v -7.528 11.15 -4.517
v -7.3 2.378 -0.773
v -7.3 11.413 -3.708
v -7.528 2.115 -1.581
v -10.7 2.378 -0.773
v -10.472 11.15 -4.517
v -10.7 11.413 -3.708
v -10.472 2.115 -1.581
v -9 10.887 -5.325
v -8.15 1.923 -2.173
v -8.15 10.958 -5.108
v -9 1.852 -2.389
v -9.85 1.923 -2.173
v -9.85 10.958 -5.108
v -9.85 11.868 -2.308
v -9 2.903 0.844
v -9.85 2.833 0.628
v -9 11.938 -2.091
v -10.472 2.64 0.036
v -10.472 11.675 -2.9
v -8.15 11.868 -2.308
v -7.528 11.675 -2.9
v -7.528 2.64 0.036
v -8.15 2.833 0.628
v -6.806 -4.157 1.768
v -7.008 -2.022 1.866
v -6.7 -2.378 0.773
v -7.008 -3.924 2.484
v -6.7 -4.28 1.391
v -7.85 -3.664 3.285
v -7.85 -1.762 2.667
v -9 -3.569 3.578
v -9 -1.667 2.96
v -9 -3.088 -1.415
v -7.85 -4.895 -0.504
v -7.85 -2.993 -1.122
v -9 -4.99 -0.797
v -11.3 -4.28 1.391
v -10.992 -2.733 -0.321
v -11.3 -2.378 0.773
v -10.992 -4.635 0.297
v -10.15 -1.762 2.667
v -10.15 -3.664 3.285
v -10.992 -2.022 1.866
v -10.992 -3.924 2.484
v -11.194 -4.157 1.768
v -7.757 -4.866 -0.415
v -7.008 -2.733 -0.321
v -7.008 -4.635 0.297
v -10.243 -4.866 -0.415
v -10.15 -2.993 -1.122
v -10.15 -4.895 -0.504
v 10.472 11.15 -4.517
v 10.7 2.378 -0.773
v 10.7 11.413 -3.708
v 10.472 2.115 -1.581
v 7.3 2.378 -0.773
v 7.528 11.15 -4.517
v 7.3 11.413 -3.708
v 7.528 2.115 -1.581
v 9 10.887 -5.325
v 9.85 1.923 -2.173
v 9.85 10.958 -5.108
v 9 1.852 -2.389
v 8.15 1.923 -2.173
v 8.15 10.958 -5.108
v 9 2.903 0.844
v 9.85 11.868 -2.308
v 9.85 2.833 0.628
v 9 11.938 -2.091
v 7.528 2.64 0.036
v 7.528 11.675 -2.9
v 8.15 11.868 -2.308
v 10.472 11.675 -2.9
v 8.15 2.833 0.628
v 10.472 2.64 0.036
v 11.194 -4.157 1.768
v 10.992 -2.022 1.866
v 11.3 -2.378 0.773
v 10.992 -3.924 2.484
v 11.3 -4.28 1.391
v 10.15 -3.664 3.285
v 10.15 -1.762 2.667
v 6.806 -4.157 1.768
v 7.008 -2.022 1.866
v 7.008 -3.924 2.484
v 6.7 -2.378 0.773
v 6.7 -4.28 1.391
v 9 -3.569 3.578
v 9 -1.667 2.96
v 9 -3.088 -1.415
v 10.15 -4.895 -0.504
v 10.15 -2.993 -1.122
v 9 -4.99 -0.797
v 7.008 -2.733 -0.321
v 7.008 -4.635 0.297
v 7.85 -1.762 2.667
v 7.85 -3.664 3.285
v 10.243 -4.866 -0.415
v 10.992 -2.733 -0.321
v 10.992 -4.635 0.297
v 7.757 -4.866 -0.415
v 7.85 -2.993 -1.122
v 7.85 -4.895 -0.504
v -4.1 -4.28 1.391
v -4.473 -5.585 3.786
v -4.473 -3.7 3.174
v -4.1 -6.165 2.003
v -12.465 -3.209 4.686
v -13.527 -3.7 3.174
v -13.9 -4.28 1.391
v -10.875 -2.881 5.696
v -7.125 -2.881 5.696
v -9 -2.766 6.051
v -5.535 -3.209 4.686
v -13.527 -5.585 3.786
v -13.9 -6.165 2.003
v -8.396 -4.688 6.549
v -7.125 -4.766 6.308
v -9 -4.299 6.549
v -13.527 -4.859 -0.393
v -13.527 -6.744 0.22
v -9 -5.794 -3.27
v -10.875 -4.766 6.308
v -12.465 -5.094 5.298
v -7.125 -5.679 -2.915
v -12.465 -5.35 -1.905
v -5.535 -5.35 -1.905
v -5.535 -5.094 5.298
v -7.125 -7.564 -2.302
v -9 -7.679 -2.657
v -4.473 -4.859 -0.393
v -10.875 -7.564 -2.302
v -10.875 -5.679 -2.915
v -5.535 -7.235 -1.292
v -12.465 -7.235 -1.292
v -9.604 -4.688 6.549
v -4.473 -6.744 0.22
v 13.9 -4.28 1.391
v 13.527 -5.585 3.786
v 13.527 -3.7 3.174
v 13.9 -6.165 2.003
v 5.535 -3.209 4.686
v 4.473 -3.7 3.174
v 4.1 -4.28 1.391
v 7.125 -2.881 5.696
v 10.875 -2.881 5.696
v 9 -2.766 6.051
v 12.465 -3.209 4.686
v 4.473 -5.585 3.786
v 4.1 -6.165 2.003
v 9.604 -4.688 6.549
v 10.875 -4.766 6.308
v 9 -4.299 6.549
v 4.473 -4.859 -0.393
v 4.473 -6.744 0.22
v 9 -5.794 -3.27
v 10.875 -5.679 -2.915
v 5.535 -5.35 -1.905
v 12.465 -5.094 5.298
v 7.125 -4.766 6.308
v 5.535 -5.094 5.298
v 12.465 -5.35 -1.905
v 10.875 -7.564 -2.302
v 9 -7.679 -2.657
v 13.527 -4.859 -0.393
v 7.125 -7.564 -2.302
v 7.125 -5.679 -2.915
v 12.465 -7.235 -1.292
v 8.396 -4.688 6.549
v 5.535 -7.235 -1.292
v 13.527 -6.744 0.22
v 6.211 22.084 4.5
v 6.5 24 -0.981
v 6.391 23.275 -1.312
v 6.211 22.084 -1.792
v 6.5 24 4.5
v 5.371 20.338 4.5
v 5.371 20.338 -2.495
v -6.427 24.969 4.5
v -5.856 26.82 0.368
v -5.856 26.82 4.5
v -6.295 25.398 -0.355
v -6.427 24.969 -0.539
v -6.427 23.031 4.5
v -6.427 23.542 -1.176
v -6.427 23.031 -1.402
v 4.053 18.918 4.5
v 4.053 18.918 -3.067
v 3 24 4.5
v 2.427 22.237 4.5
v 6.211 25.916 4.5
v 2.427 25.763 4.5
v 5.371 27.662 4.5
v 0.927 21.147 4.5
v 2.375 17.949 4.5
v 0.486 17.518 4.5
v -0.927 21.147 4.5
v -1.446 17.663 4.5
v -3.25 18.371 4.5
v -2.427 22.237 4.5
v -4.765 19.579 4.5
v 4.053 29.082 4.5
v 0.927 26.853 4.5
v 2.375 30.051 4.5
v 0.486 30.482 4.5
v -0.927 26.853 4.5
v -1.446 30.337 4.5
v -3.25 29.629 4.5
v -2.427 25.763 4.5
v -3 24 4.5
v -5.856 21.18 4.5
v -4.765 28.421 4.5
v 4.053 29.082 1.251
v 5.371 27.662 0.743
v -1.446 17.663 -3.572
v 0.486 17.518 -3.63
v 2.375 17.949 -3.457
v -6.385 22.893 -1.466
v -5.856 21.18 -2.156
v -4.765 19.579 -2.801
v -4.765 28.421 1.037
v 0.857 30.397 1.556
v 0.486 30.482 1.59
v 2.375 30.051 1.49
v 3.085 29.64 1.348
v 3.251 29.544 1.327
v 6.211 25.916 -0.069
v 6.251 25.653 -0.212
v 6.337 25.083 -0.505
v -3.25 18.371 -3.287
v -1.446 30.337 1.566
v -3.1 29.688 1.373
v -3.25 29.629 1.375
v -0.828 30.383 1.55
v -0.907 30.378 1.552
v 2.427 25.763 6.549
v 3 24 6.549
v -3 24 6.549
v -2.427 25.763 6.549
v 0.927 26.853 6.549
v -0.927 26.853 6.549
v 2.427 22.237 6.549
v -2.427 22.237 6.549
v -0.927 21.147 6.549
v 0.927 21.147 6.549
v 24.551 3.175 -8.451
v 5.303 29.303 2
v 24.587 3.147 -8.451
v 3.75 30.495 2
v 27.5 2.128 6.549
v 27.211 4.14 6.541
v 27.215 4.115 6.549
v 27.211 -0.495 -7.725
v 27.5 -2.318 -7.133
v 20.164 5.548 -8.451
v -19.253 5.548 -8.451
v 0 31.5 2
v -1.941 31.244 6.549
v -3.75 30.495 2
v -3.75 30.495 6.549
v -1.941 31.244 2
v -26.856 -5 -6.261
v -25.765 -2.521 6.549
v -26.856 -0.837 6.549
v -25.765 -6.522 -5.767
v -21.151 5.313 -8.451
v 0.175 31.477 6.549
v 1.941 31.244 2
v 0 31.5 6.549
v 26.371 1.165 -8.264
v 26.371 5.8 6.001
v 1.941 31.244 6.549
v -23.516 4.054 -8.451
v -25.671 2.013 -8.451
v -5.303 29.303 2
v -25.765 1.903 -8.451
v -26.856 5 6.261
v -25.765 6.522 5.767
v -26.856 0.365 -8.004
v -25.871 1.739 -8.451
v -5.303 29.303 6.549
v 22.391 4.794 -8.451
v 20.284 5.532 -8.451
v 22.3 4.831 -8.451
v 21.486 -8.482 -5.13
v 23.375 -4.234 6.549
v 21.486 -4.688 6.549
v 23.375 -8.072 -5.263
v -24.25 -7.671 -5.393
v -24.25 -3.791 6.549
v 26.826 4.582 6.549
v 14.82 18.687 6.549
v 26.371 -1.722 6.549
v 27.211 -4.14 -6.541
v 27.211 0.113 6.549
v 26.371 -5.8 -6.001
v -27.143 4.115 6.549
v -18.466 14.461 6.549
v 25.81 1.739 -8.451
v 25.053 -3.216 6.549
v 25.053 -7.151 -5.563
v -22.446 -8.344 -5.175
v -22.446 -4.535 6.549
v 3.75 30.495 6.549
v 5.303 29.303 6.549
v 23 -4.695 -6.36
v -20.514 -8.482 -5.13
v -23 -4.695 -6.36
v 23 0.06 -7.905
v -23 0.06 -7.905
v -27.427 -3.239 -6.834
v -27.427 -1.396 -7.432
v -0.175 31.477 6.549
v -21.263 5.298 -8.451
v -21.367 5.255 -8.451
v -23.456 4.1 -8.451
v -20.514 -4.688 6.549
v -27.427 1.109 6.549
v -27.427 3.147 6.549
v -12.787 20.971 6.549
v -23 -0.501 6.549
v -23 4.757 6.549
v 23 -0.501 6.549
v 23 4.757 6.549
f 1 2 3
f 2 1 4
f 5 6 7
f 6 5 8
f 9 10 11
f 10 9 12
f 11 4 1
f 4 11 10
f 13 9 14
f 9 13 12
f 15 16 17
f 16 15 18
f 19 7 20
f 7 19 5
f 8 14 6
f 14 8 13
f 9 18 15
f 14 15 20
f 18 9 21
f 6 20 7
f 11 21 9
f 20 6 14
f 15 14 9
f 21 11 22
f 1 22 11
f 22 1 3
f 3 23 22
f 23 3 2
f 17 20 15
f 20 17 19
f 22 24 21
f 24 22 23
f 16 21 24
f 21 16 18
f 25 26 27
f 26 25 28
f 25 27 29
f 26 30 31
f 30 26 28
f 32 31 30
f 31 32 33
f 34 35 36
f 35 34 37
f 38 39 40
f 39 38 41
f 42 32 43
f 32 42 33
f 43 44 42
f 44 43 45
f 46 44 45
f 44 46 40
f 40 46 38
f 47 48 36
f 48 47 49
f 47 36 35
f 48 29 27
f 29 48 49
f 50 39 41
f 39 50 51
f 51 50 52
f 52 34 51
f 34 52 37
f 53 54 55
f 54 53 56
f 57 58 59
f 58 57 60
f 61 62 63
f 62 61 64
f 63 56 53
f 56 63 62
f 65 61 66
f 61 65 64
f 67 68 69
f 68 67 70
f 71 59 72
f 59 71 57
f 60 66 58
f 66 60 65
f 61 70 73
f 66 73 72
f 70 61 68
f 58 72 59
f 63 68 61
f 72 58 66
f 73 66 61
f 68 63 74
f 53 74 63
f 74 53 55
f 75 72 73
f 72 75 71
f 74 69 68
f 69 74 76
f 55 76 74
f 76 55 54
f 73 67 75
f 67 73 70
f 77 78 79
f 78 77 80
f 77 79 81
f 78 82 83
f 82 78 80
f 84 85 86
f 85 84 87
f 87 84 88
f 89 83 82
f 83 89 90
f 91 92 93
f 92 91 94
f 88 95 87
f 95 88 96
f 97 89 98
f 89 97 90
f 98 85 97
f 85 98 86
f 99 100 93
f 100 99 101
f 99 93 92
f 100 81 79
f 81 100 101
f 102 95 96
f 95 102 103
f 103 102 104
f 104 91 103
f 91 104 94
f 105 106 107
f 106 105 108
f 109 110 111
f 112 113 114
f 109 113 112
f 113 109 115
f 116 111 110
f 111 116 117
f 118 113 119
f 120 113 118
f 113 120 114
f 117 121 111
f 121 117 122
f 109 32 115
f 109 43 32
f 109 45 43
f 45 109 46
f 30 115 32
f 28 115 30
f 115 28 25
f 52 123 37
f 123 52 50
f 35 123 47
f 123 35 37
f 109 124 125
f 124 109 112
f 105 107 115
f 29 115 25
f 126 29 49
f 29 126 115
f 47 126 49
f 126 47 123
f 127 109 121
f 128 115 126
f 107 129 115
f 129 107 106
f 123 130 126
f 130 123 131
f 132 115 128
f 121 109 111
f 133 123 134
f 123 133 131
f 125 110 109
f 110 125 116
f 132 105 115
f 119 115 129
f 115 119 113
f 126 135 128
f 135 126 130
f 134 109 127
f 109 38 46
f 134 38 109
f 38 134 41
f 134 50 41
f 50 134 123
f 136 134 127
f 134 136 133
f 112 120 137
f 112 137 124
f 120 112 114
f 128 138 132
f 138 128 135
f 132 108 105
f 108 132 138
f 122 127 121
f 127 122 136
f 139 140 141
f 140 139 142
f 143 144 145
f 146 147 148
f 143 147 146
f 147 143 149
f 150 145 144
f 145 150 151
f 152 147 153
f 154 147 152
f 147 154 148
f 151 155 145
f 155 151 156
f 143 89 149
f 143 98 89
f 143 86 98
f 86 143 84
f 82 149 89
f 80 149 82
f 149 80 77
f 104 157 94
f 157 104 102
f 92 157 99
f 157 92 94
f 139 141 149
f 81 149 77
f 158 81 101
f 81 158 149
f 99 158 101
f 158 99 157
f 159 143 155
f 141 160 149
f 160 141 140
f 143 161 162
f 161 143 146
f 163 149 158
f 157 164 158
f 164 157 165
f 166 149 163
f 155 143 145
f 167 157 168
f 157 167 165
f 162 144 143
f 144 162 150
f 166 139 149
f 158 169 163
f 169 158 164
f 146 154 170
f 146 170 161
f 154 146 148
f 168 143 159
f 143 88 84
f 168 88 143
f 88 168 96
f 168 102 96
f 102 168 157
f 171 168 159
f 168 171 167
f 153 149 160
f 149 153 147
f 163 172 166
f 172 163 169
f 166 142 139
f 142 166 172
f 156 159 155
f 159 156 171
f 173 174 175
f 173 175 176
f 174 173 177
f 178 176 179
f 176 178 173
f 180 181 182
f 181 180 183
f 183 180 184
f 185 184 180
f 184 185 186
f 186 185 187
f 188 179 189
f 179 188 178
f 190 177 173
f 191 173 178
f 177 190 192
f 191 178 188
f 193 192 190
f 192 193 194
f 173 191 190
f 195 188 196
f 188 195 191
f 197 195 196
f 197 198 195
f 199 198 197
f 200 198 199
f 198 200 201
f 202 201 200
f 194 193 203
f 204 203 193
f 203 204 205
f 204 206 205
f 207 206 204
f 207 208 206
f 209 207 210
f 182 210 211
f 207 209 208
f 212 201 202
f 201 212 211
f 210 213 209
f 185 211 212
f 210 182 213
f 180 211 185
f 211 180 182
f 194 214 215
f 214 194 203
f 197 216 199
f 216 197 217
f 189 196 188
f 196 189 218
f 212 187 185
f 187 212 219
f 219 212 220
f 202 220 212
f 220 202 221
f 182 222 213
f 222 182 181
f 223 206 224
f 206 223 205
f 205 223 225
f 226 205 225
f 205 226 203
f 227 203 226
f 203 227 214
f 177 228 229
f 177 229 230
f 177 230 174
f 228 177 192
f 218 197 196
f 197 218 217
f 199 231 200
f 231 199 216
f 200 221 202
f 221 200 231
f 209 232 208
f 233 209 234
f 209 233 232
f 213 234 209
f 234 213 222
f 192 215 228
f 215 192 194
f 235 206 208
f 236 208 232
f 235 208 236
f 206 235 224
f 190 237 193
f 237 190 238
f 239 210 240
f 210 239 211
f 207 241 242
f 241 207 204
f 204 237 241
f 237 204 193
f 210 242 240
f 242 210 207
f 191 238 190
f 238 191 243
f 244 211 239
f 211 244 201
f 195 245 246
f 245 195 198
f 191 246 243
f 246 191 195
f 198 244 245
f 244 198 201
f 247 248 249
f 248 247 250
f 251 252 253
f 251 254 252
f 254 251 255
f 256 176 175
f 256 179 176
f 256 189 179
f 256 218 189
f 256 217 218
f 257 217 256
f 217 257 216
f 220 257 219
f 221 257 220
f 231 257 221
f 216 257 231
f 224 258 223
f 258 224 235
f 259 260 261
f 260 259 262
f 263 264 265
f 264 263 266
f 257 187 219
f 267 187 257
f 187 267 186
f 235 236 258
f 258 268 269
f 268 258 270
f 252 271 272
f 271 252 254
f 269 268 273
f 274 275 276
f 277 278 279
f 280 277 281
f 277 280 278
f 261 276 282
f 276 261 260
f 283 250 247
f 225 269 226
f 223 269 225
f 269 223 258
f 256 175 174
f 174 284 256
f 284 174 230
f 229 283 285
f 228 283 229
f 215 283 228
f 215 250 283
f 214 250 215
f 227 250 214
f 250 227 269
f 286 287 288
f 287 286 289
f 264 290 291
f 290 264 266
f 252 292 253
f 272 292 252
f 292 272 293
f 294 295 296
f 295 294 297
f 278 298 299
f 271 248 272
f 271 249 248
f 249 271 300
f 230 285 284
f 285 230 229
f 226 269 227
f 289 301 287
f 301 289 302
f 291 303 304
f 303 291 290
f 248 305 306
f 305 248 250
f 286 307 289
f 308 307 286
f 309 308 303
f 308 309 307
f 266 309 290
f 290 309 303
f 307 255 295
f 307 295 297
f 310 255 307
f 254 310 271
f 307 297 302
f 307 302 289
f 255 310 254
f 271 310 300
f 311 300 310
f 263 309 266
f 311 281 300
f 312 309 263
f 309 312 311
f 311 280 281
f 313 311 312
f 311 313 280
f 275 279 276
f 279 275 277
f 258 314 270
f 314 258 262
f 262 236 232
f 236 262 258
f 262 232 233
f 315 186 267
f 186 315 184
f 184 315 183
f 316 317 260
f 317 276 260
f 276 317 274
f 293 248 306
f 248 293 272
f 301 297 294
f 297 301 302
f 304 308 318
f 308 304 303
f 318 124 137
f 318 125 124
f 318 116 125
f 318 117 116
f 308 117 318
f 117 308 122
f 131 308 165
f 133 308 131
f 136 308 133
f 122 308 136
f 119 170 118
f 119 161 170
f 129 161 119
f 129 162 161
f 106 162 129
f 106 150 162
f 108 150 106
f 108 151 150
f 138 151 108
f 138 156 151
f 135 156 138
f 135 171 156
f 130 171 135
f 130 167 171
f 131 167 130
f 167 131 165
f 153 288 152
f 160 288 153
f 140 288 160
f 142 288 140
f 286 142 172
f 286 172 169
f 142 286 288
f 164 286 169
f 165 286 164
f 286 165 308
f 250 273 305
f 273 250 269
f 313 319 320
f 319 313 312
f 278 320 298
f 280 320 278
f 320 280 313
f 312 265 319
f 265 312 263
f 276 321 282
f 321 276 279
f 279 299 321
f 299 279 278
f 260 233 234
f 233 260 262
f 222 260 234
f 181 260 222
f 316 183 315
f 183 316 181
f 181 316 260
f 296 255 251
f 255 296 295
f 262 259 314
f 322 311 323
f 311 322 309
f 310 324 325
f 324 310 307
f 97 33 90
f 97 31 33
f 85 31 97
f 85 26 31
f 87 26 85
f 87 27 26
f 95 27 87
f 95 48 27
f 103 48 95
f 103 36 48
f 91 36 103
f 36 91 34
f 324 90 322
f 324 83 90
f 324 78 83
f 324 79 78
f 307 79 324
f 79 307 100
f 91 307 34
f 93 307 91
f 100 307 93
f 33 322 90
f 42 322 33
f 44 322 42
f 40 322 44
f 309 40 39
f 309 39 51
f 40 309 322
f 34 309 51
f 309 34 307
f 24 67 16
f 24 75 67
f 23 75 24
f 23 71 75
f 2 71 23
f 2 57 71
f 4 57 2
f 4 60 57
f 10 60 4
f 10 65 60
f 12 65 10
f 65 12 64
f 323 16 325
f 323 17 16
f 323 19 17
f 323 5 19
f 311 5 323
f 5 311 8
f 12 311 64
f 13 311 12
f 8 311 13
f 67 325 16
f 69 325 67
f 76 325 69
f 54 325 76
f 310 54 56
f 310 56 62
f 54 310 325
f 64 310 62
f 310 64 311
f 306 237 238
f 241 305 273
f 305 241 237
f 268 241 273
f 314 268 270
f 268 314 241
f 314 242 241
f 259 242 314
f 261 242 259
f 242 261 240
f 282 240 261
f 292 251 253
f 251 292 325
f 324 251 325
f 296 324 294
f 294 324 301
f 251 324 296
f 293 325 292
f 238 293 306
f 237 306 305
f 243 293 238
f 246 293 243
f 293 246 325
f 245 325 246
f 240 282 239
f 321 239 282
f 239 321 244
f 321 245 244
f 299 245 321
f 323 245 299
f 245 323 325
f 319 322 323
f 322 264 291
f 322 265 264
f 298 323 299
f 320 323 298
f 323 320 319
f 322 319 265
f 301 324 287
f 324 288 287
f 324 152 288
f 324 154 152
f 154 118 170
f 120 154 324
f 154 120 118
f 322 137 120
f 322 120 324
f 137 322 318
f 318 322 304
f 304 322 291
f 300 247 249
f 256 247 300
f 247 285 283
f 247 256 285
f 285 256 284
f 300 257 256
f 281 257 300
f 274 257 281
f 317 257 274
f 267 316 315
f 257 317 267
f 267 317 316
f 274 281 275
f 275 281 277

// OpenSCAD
fenderWidth = 46;
fenderThick = 5;
stayAngle = 18;

rotate([-stayAngle,0,0]) intersection() {

    rotate([0,0,0]) difference() {
      {
            hull() {
                translate([fenderWidth/2-2, 0, 0]) cylinder(d=fenderThick+8, h=15, center=true);
                translate([-fenderWidth/2+2, 0, 0]) cylinder(d=fenderThick+8, h=15, center=true);
                rotate([stayAngle,0,0]) translate([0,24,15/2 - 3]) cylinder(d=15, h=5, center=true);
            }
        }
        cube([fenderWidth, fenderThick, 25], center=true);
        for (xx=[-9:18:9]) {
            translate([xx,-(fenderThick/2+2),0]) rotate([90,0,0]) cylinder(d=9.8, h=6, center=false);
            translate([xx, 0, 0]) {
                rotate([-90,0,0]) cylinder(d=3.4, h=12, center=false, $fn=12);
                rotate([90,0,0]) cylinder(d=4.6, h=25, center=false, $fn=12);
            }
        }
        rotate([stayAngle,0,0]) translate([0,24,15/2 - 3])  {
            rotate([180,0,0]) cylinder(d=13, h=10, center=false);
            cylinder(d=6, h=25, center=true);
        }

    }
    translate([0,0,-1]) rotate([stayAngle,0,0]) cube([100, 100,15], center=true);
}

offset=15;
